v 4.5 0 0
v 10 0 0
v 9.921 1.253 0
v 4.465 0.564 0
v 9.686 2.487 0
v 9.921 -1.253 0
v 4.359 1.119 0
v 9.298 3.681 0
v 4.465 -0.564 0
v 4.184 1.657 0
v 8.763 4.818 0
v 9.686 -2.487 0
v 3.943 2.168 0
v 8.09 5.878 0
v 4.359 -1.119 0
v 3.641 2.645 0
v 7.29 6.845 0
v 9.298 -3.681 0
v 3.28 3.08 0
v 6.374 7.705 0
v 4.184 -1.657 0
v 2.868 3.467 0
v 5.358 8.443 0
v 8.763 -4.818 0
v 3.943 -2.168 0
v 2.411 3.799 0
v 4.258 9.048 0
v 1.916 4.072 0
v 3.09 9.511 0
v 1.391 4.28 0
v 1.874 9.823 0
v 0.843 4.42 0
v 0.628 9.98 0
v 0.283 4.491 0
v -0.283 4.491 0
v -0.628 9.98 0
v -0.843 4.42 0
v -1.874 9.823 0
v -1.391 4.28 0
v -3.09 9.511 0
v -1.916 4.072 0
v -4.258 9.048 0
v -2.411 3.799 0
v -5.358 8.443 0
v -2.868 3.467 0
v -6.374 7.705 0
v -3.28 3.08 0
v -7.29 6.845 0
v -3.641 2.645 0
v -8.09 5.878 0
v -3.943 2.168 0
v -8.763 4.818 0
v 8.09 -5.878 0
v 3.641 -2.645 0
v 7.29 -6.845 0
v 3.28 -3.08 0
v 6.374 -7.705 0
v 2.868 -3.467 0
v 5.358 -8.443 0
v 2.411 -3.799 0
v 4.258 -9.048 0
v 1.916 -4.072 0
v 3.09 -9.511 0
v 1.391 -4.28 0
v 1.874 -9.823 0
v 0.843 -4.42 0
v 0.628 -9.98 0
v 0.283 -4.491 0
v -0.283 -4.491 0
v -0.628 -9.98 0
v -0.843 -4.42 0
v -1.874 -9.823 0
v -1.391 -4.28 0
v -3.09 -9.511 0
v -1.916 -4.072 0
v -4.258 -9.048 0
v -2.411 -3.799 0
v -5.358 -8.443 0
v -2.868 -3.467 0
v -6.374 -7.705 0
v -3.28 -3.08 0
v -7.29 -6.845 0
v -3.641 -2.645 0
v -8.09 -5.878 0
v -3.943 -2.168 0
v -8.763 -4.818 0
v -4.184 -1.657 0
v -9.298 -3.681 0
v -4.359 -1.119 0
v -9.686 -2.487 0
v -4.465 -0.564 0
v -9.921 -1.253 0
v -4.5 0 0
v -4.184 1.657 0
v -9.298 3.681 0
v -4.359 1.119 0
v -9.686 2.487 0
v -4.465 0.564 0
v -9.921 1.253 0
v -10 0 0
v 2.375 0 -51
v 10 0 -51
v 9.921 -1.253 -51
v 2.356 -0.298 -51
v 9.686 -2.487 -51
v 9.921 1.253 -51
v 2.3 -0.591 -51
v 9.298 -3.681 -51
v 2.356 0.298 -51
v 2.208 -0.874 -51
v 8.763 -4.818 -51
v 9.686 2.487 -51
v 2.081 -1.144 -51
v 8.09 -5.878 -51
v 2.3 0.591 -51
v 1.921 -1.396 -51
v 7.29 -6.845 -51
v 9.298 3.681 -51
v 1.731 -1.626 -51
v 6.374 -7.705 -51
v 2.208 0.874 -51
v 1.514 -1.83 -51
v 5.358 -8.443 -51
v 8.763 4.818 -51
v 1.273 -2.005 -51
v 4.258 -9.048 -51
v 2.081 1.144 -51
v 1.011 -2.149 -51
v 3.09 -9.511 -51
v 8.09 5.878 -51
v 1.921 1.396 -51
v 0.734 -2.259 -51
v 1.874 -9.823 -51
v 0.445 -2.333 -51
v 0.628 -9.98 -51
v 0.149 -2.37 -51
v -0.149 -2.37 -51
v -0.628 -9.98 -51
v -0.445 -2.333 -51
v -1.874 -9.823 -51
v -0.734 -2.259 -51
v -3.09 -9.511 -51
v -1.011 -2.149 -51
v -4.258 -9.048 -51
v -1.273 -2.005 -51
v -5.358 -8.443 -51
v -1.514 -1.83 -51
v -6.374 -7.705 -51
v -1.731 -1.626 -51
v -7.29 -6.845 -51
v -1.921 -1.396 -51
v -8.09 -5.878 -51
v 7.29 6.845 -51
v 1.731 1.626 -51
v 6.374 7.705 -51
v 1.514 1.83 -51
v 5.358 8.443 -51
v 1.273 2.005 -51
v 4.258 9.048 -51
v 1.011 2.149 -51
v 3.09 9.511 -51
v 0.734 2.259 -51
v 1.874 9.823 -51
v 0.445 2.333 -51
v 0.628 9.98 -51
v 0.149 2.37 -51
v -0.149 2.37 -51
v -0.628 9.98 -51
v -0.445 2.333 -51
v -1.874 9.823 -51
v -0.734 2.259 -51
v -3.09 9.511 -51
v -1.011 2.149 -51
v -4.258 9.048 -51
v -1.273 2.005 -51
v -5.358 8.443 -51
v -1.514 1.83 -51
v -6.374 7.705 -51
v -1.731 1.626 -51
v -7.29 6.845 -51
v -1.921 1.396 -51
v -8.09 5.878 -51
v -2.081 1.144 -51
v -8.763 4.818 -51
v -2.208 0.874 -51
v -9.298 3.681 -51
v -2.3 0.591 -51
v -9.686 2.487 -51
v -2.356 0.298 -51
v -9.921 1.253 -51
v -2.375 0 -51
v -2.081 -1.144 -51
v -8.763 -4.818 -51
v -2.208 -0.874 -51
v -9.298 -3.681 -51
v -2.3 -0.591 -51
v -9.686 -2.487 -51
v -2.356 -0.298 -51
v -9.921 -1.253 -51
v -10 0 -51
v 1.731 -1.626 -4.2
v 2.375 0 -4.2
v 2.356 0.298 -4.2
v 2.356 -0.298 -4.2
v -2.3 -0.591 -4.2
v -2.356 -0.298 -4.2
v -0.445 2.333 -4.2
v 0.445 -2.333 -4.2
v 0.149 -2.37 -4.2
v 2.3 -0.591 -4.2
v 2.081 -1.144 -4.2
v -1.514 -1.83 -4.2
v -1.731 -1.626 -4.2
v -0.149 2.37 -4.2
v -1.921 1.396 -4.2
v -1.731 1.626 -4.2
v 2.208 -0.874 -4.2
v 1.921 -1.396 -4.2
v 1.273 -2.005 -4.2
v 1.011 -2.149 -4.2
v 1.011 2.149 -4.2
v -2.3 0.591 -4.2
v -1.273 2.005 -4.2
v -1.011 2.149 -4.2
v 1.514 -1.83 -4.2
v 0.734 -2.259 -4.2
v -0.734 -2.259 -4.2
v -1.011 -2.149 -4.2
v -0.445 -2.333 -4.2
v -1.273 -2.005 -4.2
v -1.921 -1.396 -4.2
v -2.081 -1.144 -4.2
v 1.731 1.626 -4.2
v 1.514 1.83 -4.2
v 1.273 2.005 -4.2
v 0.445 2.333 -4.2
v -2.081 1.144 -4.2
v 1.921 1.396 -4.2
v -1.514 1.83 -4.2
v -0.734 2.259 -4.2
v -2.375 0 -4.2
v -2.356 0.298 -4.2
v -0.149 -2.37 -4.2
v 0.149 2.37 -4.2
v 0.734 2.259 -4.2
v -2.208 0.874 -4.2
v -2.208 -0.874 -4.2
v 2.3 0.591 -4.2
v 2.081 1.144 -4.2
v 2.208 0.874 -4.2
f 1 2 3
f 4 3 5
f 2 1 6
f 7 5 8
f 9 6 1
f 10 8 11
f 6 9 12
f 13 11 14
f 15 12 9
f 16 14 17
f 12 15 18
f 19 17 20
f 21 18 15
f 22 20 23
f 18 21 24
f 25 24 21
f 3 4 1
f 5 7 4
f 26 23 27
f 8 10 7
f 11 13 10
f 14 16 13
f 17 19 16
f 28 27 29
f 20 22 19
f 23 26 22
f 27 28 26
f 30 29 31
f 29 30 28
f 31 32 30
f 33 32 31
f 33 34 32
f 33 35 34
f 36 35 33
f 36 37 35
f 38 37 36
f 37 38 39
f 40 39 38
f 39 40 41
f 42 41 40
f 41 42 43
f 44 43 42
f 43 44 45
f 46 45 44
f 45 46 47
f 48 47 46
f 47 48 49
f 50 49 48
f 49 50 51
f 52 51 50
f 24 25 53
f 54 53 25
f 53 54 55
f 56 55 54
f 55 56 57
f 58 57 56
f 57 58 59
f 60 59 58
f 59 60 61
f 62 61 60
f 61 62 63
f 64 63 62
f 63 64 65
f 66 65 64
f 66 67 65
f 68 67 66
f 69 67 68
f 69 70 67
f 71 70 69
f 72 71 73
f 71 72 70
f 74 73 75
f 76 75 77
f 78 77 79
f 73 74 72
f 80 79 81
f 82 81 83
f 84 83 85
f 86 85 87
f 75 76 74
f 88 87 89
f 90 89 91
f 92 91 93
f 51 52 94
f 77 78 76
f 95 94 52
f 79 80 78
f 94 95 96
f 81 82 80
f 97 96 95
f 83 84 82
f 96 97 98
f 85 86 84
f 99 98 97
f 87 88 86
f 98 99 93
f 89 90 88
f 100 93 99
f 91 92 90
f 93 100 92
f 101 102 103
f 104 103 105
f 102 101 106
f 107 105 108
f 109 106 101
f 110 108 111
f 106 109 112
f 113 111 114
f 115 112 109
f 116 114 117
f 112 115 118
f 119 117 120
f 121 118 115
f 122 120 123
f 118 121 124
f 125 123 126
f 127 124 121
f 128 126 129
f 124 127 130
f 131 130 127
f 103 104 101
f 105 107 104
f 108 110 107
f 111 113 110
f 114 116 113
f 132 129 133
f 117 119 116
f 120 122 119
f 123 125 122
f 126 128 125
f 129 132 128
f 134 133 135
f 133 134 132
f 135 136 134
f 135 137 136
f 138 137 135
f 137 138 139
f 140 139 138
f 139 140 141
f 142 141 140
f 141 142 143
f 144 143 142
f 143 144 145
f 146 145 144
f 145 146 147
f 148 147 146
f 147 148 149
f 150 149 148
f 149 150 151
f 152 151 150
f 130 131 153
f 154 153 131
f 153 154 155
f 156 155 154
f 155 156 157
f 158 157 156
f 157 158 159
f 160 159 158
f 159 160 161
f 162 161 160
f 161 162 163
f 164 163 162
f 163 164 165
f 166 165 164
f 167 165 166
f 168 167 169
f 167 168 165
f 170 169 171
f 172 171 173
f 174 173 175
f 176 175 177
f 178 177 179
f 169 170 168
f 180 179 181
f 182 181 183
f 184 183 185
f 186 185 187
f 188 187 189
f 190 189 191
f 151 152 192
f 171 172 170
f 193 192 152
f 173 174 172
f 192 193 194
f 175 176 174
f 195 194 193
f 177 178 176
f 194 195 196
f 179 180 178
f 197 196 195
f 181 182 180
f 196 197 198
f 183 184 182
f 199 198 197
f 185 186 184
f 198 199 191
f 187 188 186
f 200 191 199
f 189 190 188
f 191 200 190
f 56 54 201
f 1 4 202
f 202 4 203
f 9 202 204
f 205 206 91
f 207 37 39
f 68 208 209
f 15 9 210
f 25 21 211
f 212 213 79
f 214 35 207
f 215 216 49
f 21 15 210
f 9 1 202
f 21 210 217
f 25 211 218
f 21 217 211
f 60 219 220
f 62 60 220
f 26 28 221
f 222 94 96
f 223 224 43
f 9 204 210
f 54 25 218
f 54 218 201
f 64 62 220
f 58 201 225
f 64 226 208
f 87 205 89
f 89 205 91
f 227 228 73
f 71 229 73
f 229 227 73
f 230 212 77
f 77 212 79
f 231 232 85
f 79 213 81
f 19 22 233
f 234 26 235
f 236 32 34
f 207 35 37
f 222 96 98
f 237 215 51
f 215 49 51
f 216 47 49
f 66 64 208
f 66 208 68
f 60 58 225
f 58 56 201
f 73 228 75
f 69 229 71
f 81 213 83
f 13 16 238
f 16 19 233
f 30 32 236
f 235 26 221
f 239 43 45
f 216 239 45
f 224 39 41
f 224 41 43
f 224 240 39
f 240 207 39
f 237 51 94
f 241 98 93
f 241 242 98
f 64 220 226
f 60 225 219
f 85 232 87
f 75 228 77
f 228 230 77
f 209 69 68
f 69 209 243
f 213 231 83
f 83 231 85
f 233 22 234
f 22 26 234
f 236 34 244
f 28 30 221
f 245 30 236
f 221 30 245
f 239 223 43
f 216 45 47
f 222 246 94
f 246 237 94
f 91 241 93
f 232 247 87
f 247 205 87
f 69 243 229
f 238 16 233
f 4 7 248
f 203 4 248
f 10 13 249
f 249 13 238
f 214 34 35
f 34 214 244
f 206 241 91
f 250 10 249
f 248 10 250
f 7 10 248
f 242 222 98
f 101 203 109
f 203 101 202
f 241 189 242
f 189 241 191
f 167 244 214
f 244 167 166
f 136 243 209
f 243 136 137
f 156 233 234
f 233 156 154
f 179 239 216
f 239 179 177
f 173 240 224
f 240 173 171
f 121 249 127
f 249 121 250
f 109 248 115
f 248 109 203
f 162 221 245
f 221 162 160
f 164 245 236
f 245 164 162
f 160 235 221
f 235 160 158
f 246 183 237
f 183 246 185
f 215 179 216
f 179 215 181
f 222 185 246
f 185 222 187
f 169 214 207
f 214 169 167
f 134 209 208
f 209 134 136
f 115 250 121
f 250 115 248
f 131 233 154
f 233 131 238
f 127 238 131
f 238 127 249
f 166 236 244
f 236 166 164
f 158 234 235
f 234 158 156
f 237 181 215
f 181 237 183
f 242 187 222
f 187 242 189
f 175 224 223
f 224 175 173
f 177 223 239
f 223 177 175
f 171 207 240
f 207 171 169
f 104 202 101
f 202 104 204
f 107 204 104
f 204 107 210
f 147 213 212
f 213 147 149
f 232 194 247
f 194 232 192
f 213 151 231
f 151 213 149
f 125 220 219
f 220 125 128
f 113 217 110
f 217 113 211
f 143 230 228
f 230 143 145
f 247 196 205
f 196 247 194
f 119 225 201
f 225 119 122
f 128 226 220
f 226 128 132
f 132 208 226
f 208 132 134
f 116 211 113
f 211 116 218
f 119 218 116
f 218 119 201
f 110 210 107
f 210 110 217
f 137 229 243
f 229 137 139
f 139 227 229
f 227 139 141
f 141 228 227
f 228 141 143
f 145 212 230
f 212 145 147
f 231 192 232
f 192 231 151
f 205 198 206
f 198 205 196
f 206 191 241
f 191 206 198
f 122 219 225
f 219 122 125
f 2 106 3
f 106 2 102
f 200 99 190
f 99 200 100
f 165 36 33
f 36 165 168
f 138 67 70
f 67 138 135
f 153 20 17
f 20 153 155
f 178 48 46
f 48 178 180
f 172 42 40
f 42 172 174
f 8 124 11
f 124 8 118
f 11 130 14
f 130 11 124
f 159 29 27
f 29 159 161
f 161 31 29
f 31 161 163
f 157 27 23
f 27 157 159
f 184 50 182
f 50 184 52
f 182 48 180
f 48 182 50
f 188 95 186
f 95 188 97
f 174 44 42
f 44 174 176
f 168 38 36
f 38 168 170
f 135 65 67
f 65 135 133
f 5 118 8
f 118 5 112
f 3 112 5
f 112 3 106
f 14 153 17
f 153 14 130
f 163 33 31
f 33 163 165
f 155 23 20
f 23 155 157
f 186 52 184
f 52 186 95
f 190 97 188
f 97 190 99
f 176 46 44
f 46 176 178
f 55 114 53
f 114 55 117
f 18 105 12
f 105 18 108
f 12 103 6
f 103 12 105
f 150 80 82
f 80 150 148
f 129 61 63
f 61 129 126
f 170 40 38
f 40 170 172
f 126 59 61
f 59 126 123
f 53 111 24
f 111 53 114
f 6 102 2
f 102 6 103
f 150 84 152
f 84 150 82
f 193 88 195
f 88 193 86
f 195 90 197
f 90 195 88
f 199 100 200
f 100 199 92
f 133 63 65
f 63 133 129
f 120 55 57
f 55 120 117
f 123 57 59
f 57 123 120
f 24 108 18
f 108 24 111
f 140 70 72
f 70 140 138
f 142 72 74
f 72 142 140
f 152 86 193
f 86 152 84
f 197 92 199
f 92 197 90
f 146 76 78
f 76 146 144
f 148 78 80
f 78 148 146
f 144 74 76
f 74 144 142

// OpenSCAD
$fn = 50;


difference() {
	union() {
		translate(v = [0, 0, -51.0000000000]) {
			cylinder(h = 51, r = 10.0000000000);
		}
		cylinder(h = 0, r = 20.0000000000);
	}
	union() {
		translate(v = [0, 0, 0]) {
			rotate(a = [0, 0, 0]) {
				difference() {
					union() {
						#translate(v = [0, 0, -51.0000000000]) {
							cylinder(h = 51, r = 2.2500000000);
						}
						#translate(v = [0, 0, -4.2000000000]) {
							cylinder(h = 4.2000000000, r1 = 2.3750000000, r2 = 4.5000000000);
						}
						#translate(v = [0, 0, -51.0000000000]) {
							cylinder(h = 51, r = 2.3750000000);
						}
						#translate(v = [0, 0, -51.0000000000]) {
							cylinder(h = 51, r = 2.2500000000);
						}
					}
					union();
				}
			}
		}
	}
}
